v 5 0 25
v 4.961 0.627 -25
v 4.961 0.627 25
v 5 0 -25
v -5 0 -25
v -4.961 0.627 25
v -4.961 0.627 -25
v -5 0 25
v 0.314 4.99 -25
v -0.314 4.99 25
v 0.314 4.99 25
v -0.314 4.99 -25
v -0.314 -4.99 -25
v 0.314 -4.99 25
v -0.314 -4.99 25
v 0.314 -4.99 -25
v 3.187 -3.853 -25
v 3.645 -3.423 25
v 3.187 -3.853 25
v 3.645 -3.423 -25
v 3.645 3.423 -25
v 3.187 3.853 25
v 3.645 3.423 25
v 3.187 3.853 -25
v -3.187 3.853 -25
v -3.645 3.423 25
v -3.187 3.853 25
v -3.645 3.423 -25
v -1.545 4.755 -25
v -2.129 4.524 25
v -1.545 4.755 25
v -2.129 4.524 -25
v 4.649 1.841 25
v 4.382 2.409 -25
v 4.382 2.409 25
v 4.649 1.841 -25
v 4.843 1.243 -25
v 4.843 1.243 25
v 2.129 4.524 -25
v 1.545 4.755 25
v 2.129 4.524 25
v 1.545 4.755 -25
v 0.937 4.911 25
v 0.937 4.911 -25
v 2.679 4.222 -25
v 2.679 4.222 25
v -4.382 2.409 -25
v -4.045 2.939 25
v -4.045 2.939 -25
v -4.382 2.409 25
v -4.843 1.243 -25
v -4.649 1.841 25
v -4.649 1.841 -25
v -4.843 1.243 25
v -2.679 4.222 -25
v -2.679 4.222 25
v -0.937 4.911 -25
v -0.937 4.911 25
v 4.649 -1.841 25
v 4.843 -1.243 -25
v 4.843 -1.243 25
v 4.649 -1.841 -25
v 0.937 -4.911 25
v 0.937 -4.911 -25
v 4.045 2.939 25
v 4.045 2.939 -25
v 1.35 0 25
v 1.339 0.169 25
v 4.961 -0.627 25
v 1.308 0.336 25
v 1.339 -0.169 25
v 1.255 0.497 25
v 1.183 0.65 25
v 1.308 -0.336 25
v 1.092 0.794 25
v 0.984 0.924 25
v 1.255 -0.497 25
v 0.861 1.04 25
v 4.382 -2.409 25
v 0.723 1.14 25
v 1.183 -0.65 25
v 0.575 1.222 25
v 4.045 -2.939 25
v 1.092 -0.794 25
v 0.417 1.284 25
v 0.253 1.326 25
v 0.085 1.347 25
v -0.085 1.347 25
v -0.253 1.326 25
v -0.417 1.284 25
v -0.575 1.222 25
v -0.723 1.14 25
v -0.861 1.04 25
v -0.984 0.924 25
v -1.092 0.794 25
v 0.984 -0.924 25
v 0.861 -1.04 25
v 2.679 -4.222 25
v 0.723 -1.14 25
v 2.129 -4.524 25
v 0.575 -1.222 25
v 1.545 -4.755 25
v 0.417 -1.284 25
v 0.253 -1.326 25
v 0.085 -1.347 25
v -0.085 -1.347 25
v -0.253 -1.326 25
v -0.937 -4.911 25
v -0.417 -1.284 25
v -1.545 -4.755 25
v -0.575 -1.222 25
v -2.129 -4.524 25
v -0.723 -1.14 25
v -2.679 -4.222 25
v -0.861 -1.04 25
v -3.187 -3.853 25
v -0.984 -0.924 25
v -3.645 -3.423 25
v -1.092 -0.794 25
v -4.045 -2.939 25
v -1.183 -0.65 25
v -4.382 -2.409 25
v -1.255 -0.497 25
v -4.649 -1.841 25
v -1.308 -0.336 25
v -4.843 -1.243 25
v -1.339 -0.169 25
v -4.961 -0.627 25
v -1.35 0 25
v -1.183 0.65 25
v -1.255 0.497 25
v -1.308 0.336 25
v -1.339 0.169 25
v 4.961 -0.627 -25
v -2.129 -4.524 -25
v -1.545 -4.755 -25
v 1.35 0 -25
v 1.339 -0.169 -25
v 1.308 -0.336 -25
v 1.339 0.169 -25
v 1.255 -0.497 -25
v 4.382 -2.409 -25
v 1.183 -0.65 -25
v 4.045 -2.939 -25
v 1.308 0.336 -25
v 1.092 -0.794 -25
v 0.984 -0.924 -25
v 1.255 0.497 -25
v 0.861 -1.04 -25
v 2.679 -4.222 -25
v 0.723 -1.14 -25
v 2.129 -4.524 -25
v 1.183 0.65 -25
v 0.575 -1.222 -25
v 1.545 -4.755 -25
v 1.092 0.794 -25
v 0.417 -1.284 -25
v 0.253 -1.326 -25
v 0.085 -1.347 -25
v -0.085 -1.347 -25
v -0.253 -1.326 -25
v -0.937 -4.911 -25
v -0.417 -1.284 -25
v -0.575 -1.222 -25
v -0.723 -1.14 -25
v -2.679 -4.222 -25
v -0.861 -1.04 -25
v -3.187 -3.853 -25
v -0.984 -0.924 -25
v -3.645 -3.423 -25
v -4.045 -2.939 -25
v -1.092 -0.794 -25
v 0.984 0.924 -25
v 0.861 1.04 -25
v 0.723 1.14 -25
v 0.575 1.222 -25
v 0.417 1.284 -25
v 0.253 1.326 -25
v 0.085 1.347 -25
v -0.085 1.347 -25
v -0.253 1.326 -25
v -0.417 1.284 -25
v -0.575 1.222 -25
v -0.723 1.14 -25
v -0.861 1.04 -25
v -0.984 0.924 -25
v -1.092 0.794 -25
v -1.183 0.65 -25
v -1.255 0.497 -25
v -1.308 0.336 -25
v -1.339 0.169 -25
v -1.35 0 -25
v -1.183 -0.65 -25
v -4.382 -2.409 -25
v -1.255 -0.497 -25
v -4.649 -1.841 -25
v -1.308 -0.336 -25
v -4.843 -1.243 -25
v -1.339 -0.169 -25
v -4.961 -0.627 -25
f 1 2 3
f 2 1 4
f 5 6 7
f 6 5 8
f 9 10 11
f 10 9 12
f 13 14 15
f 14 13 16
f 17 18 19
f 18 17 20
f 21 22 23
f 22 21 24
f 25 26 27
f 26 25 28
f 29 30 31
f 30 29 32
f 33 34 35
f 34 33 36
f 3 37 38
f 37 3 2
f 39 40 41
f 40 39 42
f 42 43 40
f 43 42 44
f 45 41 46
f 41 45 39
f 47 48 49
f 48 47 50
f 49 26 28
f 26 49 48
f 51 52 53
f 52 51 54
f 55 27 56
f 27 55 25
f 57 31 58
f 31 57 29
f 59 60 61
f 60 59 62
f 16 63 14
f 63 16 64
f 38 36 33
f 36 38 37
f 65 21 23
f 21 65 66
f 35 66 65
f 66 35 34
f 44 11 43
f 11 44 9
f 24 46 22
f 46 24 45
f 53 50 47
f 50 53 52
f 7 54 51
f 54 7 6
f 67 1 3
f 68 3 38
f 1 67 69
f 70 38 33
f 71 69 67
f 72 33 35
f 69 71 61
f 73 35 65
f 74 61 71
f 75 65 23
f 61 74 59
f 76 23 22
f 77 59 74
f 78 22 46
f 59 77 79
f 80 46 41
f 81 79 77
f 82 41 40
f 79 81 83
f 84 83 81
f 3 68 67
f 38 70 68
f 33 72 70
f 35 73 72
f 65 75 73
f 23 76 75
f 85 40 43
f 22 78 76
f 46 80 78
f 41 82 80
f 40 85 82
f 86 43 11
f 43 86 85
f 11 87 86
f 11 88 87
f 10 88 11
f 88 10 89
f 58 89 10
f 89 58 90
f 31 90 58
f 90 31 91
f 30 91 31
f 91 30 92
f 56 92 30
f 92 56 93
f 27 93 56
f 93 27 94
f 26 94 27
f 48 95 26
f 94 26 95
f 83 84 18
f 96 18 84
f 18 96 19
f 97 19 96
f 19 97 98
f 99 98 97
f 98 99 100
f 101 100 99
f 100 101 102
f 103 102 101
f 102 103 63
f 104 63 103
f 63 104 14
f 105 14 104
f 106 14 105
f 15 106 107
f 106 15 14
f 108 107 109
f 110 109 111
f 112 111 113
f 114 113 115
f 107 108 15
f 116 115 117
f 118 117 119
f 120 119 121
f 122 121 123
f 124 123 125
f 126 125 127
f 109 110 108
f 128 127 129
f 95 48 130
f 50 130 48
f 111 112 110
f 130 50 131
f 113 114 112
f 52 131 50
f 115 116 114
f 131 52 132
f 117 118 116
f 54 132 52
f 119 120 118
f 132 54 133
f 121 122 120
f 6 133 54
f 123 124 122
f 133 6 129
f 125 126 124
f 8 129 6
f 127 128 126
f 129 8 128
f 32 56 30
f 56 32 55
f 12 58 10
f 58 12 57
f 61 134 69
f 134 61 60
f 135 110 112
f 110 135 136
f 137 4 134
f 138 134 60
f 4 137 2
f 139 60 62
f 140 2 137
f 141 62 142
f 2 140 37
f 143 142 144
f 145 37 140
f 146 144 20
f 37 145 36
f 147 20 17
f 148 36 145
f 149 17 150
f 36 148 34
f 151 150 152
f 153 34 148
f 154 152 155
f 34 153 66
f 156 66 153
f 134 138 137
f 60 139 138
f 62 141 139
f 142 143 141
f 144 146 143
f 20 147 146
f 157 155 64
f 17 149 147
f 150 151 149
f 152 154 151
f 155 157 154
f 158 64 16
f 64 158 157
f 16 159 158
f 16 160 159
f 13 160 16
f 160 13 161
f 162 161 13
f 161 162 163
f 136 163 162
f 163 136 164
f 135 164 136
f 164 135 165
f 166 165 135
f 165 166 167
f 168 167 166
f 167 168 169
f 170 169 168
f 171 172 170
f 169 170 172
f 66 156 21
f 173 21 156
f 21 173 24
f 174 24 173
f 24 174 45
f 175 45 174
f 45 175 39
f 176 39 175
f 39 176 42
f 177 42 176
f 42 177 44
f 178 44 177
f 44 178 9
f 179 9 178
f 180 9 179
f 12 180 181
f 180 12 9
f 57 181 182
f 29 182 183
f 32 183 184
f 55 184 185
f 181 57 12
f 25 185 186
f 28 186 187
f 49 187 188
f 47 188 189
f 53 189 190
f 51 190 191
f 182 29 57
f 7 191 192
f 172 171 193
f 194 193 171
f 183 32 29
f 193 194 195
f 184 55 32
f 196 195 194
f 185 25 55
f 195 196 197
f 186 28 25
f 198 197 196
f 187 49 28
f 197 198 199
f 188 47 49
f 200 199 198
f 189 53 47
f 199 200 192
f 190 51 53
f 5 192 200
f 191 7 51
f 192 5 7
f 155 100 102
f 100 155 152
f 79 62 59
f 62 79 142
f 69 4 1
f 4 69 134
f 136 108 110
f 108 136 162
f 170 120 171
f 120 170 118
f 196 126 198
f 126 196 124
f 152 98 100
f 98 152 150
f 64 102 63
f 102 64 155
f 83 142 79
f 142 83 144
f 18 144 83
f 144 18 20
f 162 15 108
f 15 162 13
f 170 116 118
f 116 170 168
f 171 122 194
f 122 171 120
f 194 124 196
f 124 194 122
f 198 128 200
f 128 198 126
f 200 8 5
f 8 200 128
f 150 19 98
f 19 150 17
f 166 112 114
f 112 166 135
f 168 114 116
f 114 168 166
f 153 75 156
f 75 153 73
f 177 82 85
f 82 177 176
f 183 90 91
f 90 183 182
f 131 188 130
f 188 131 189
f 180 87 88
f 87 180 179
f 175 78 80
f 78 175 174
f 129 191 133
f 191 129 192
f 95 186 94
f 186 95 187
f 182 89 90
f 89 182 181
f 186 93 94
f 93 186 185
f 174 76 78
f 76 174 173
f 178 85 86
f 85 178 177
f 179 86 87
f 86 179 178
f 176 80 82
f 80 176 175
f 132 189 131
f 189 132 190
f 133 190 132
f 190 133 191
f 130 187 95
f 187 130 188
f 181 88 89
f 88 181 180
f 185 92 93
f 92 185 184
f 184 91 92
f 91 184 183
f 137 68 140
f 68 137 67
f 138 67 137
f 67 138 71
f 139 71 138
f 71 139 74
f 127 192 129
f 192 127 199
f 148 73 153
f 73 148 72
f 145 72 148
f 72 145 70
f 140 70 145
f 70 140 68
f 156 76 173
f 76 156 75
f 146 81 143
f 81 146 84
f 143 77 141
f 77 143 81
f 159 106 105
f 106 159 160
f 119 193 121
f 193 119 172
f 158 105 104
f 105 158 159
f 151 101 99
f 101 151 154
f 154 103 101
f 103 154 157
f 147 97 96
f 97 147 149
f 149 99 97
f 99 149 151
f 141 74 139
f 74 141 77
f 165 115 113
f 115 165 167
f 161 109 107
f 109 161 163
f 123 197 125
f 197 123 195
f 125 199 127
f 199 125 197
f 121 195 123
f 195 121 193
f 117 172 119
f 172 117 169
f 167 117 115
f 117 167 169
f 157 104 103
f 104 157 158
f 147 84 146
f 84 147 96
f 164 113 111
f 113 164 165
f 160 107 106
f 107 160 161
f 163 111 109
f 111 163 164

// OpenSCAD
$fn = 50;


difference() {
	union() {
		translate(v = [0, 0, -25.0000000000]) {
			cylinder(h = 50, r = 5.0000000000);
		}
	}
	union() {
		translate(v = [0, 0, -100.0000000000]) {
			cylinder(h = 200, r = 1.3500000000);
		}
	}
}
